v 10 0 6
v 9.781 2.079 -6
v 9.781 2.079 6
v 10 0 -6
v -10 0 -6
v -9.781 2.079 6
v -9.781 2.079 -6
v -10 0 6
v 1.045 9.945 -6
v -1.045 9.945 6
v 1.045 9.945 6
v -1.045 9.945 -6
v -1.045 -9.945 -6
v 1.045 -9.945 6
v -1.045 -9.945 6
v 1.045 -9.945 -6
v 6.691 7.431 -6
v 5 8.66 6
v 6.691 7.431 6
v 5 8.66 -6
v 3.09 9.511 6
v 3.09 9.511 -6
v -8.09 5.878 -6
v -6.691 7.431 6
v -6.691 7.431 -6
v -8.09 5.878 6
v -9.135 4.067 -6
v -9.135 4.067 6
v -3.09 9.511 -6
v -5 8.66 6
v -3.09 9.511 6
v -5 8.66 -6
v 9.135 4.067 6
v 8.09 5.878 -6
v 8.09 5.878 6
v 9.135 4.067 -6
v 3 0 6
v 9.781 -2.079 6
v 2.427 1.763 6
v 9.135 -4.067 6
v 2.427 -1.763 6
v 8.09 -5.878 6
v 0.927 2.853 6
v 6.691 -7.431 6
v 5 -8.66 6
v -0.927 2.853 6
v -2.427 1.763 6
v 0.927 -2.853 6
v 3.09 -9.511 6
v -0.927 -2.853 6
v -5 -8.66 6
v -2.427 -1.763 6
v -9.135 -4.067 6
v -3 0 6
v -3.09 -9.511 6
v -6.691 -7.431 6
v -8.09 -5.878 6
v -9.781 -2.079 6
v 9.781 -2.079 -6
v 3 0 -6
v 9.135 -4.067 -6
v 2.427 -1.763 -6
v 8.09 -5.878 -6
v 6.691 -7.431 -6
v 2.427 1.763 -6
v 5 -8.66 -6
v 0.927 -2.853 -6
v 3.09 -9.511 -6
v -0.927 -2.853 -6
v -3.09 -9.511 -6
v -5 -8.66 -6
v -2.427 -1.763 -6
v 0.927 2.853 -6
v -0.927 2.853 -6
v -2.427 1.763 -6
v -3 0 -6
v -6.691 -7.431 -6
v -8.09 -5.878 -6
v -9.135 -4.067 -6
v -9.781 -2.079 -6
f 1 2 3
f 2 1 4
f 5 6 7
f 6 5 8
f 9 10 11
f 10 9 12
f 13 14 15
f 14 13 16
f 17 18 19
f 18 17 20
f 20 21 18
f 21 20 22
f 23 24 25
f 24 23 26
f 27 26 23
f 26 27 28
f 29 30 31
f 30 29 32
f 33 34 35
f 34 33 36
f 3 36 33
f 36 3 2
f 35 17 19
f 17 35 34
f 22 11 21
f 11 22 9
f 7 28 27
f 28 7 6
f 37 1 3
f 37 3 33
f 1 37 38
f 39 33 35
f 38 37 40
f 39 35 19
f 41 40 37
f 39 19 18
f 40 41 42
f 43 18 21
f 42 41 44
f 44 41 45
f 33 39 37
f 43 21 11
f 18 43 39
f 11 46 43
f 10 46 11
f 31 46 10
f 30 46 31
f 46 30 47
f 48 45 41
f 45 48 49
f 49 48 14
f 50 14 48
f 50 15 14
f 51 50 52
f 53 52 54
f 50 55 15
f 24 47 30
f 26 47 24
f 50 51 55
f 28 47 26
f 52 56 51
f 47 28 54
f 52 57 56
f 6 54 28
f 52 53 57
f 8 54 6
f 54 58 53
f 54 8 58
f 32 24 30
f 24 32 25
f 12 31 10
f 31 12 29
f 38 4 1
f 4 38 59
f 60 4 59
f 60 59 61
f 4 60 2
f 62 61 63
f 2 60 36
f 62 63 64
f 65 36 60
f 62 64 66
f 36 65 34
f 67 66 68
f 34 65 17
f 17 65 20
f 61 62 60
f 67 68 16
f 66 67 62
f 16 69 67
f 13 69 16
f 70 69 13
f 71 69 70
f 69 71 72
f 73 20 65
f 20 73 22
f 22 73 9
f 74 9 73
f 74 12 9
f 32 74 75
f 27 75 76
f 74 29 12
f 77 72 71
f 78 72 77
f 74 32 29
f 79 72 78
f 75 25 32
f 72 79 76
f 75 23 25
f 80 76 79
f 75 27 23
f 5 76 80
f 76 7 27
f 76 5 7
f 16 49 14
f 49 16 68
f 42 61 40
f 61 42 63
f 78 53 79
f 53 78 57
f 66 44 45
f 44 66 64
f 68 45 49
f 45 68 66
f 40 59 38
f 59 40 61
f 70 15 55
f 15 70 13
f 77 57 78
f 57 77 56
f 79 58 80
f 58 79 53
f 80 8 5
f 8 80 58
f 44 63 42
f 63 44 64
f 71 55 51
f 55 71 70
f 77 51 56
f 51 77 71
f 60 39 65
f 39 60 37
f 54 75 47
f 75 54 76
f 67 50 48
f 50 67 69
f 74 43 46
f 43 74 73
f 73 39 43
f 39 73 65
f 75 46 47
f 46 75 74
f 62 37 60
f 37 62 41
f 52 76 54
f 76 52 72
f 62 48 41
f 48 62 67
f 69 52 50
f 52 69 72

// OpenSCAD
difference() {
    cylinder(h = 12, d = 20, center = true);          // main spacer body
    translate([0, 0, -6])                              // central hole along Z
        cylinder(h = 12, d = 6, center = false);       // through-hole
}
